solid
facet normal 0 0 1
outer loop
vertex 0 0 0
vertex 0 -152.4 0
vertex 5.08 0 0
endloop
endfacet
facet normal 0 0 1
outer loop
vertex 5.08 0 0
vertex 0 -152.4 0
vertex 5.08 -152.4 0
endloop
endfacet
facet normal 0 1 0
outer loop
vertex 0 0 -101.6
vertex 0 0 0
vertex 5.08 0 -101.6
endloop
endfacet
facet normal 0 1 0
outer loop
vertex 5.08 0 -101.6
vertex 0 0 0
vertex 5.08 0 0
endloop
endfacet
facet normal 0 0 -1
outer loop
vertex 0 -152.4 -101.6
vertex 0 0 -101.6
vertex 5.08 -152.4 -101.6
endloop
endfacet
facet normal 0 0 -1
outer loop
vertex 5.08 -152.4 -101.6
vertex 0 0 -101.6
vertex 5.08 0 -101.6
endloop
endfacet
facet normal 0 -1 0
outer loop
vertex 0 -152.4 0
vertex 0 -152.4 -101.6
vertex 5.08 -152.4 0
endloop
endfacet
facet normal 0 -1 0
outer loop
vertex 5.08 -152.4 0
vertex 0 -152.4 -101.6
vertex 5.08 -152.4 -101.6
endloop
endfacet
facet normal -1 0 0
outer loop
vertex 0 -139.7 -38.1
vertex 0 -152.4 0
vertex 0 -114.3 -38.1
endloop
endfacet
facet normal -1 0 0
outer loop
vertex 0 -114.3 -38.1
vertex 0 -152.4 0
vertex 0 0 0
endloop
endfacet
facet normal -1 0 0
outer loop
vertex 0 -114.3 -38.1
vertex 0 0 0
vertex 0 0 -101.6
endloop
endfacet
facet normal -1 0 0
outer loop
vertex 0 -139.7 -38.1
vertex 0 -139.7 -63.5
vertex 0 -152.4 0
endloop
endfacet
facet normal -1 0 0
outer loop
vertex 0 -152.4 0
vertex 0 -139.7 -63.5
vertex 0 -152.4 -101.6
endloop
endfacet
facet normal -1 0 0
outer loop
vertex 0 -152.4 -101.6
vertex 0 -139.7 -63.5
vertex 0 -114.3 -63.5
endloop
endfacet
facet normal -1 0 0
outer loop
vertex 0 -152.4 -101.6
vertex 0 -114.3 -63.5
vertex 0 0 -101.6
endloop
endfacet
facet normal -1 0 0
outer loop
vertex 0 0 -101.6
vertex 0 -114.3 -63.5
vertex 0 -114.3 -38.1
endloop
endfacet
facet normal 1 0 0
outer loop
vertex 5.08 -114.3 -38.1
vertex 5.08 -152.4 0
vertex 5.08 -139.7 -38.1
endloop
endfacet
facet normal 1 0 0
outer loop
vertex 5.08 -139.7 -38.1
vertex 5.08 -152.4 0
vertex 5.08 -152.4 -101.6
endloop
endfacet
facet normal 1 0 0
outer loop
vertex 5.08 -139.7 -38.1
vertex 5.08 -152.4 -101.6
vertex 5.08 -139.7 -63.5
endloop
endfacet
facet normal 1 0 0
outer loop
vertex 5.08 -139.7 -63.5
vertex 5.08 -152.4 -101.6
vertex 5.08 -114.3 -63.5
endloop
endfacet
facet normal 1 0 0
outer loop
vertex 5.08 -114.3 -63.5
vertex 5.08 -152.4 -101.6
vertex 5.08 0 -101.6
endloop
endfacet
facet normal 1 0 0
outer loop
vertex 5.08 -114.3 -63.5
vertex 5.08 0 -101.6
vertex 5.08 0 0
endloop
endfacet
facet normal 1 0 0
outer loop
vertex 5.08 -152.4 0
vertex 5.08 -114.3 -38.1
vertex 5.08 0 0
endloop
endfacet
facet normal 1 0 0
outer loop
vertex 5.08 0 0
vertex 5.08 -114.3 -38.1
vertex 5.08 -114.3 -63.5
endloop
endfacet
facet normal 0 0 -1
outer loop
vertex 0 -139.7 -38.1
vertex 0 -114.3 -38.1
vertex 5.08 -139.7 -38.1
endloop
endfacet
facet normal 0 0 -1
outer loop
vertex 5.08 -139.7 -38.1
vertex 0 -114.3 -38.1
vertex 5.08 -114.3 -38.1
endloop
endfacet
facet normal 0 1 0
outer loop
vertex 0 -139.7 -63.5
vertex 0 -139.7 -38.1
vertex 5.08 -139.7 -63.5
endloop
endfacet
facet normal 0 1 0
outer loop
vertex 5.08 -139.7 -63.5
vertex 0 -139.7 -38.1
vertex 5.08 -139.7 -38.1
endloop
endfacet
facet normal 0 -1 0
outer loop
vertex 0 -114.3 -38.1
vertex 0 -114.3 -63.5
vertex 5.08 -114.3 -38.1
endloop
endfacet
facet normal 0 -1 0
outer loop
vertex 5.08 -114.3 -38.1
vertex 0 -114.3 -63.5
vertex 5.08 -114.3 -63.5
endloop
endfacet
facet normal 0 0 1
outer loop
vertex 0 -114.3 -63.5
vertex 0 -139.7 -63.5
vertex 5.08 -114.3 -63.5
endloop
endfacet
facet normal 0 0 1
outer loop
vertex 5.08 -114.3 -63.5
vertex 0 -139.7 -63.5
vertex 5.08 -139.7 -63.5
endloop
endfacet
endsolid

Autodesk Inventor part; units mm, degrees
ref_plane "YZ Plane" through (0, 0, 0) normal (1, 0, 0) x (0, 1, 0)
ref_plane "XZ Plane" through (0, 0, 0) normal (0, 1, 0) x (-1, 0, 0)
ref_plane "XY Plane" through (0, 0, 0) normal (0, 0, 1) x (1, 0, 0)
sketch "Sketch2" plane through (0, 0, 0) normal (1, 0, 0) x (0, 1, 0)
  line L0 (0, 0) -> (-152.4, 0)
  line L1 (-152.4, 0) -> (-152.4, -101.6)
  line L2 (-152.4, -101.6) -> (0, -101.6)
  line L3 (0, -101.6) -> (0, 0)
  dimension "d4" = 152.4
  dimension "d5" = 101.6
extrude "Extrusion2" add sketch "Sketch2" along normal blind 5.08
sketch "Sketch4" plane through (5.08, 0, 0) normal (1, 0, 0) x (0, 0, -1)
  line L0 (0, -152.4) -> (101.6, -152.4) projected
  line L1 (50.8, -139.7) -> (63.5, -139.7)
  line L2 (63.5, -139.7) -> (38.1, -139.7)
  line L3 (38.1, -139.7) -> (38.1, -114.3)
  line L4 (38.1, -114.3) -> (63.5, -114.3)
  line L5 (63.5, -114.3) -> (63.5, -139.7)
  point P0 (0, 0)
  dimension "d13" = 12.7
  dimension "d14" = 25.4
  dimension "d15" = 25.4
extrude "Extrusion4" cut sketch "Sketch4" against normal blind 25.4
properties part number "Left wall"
